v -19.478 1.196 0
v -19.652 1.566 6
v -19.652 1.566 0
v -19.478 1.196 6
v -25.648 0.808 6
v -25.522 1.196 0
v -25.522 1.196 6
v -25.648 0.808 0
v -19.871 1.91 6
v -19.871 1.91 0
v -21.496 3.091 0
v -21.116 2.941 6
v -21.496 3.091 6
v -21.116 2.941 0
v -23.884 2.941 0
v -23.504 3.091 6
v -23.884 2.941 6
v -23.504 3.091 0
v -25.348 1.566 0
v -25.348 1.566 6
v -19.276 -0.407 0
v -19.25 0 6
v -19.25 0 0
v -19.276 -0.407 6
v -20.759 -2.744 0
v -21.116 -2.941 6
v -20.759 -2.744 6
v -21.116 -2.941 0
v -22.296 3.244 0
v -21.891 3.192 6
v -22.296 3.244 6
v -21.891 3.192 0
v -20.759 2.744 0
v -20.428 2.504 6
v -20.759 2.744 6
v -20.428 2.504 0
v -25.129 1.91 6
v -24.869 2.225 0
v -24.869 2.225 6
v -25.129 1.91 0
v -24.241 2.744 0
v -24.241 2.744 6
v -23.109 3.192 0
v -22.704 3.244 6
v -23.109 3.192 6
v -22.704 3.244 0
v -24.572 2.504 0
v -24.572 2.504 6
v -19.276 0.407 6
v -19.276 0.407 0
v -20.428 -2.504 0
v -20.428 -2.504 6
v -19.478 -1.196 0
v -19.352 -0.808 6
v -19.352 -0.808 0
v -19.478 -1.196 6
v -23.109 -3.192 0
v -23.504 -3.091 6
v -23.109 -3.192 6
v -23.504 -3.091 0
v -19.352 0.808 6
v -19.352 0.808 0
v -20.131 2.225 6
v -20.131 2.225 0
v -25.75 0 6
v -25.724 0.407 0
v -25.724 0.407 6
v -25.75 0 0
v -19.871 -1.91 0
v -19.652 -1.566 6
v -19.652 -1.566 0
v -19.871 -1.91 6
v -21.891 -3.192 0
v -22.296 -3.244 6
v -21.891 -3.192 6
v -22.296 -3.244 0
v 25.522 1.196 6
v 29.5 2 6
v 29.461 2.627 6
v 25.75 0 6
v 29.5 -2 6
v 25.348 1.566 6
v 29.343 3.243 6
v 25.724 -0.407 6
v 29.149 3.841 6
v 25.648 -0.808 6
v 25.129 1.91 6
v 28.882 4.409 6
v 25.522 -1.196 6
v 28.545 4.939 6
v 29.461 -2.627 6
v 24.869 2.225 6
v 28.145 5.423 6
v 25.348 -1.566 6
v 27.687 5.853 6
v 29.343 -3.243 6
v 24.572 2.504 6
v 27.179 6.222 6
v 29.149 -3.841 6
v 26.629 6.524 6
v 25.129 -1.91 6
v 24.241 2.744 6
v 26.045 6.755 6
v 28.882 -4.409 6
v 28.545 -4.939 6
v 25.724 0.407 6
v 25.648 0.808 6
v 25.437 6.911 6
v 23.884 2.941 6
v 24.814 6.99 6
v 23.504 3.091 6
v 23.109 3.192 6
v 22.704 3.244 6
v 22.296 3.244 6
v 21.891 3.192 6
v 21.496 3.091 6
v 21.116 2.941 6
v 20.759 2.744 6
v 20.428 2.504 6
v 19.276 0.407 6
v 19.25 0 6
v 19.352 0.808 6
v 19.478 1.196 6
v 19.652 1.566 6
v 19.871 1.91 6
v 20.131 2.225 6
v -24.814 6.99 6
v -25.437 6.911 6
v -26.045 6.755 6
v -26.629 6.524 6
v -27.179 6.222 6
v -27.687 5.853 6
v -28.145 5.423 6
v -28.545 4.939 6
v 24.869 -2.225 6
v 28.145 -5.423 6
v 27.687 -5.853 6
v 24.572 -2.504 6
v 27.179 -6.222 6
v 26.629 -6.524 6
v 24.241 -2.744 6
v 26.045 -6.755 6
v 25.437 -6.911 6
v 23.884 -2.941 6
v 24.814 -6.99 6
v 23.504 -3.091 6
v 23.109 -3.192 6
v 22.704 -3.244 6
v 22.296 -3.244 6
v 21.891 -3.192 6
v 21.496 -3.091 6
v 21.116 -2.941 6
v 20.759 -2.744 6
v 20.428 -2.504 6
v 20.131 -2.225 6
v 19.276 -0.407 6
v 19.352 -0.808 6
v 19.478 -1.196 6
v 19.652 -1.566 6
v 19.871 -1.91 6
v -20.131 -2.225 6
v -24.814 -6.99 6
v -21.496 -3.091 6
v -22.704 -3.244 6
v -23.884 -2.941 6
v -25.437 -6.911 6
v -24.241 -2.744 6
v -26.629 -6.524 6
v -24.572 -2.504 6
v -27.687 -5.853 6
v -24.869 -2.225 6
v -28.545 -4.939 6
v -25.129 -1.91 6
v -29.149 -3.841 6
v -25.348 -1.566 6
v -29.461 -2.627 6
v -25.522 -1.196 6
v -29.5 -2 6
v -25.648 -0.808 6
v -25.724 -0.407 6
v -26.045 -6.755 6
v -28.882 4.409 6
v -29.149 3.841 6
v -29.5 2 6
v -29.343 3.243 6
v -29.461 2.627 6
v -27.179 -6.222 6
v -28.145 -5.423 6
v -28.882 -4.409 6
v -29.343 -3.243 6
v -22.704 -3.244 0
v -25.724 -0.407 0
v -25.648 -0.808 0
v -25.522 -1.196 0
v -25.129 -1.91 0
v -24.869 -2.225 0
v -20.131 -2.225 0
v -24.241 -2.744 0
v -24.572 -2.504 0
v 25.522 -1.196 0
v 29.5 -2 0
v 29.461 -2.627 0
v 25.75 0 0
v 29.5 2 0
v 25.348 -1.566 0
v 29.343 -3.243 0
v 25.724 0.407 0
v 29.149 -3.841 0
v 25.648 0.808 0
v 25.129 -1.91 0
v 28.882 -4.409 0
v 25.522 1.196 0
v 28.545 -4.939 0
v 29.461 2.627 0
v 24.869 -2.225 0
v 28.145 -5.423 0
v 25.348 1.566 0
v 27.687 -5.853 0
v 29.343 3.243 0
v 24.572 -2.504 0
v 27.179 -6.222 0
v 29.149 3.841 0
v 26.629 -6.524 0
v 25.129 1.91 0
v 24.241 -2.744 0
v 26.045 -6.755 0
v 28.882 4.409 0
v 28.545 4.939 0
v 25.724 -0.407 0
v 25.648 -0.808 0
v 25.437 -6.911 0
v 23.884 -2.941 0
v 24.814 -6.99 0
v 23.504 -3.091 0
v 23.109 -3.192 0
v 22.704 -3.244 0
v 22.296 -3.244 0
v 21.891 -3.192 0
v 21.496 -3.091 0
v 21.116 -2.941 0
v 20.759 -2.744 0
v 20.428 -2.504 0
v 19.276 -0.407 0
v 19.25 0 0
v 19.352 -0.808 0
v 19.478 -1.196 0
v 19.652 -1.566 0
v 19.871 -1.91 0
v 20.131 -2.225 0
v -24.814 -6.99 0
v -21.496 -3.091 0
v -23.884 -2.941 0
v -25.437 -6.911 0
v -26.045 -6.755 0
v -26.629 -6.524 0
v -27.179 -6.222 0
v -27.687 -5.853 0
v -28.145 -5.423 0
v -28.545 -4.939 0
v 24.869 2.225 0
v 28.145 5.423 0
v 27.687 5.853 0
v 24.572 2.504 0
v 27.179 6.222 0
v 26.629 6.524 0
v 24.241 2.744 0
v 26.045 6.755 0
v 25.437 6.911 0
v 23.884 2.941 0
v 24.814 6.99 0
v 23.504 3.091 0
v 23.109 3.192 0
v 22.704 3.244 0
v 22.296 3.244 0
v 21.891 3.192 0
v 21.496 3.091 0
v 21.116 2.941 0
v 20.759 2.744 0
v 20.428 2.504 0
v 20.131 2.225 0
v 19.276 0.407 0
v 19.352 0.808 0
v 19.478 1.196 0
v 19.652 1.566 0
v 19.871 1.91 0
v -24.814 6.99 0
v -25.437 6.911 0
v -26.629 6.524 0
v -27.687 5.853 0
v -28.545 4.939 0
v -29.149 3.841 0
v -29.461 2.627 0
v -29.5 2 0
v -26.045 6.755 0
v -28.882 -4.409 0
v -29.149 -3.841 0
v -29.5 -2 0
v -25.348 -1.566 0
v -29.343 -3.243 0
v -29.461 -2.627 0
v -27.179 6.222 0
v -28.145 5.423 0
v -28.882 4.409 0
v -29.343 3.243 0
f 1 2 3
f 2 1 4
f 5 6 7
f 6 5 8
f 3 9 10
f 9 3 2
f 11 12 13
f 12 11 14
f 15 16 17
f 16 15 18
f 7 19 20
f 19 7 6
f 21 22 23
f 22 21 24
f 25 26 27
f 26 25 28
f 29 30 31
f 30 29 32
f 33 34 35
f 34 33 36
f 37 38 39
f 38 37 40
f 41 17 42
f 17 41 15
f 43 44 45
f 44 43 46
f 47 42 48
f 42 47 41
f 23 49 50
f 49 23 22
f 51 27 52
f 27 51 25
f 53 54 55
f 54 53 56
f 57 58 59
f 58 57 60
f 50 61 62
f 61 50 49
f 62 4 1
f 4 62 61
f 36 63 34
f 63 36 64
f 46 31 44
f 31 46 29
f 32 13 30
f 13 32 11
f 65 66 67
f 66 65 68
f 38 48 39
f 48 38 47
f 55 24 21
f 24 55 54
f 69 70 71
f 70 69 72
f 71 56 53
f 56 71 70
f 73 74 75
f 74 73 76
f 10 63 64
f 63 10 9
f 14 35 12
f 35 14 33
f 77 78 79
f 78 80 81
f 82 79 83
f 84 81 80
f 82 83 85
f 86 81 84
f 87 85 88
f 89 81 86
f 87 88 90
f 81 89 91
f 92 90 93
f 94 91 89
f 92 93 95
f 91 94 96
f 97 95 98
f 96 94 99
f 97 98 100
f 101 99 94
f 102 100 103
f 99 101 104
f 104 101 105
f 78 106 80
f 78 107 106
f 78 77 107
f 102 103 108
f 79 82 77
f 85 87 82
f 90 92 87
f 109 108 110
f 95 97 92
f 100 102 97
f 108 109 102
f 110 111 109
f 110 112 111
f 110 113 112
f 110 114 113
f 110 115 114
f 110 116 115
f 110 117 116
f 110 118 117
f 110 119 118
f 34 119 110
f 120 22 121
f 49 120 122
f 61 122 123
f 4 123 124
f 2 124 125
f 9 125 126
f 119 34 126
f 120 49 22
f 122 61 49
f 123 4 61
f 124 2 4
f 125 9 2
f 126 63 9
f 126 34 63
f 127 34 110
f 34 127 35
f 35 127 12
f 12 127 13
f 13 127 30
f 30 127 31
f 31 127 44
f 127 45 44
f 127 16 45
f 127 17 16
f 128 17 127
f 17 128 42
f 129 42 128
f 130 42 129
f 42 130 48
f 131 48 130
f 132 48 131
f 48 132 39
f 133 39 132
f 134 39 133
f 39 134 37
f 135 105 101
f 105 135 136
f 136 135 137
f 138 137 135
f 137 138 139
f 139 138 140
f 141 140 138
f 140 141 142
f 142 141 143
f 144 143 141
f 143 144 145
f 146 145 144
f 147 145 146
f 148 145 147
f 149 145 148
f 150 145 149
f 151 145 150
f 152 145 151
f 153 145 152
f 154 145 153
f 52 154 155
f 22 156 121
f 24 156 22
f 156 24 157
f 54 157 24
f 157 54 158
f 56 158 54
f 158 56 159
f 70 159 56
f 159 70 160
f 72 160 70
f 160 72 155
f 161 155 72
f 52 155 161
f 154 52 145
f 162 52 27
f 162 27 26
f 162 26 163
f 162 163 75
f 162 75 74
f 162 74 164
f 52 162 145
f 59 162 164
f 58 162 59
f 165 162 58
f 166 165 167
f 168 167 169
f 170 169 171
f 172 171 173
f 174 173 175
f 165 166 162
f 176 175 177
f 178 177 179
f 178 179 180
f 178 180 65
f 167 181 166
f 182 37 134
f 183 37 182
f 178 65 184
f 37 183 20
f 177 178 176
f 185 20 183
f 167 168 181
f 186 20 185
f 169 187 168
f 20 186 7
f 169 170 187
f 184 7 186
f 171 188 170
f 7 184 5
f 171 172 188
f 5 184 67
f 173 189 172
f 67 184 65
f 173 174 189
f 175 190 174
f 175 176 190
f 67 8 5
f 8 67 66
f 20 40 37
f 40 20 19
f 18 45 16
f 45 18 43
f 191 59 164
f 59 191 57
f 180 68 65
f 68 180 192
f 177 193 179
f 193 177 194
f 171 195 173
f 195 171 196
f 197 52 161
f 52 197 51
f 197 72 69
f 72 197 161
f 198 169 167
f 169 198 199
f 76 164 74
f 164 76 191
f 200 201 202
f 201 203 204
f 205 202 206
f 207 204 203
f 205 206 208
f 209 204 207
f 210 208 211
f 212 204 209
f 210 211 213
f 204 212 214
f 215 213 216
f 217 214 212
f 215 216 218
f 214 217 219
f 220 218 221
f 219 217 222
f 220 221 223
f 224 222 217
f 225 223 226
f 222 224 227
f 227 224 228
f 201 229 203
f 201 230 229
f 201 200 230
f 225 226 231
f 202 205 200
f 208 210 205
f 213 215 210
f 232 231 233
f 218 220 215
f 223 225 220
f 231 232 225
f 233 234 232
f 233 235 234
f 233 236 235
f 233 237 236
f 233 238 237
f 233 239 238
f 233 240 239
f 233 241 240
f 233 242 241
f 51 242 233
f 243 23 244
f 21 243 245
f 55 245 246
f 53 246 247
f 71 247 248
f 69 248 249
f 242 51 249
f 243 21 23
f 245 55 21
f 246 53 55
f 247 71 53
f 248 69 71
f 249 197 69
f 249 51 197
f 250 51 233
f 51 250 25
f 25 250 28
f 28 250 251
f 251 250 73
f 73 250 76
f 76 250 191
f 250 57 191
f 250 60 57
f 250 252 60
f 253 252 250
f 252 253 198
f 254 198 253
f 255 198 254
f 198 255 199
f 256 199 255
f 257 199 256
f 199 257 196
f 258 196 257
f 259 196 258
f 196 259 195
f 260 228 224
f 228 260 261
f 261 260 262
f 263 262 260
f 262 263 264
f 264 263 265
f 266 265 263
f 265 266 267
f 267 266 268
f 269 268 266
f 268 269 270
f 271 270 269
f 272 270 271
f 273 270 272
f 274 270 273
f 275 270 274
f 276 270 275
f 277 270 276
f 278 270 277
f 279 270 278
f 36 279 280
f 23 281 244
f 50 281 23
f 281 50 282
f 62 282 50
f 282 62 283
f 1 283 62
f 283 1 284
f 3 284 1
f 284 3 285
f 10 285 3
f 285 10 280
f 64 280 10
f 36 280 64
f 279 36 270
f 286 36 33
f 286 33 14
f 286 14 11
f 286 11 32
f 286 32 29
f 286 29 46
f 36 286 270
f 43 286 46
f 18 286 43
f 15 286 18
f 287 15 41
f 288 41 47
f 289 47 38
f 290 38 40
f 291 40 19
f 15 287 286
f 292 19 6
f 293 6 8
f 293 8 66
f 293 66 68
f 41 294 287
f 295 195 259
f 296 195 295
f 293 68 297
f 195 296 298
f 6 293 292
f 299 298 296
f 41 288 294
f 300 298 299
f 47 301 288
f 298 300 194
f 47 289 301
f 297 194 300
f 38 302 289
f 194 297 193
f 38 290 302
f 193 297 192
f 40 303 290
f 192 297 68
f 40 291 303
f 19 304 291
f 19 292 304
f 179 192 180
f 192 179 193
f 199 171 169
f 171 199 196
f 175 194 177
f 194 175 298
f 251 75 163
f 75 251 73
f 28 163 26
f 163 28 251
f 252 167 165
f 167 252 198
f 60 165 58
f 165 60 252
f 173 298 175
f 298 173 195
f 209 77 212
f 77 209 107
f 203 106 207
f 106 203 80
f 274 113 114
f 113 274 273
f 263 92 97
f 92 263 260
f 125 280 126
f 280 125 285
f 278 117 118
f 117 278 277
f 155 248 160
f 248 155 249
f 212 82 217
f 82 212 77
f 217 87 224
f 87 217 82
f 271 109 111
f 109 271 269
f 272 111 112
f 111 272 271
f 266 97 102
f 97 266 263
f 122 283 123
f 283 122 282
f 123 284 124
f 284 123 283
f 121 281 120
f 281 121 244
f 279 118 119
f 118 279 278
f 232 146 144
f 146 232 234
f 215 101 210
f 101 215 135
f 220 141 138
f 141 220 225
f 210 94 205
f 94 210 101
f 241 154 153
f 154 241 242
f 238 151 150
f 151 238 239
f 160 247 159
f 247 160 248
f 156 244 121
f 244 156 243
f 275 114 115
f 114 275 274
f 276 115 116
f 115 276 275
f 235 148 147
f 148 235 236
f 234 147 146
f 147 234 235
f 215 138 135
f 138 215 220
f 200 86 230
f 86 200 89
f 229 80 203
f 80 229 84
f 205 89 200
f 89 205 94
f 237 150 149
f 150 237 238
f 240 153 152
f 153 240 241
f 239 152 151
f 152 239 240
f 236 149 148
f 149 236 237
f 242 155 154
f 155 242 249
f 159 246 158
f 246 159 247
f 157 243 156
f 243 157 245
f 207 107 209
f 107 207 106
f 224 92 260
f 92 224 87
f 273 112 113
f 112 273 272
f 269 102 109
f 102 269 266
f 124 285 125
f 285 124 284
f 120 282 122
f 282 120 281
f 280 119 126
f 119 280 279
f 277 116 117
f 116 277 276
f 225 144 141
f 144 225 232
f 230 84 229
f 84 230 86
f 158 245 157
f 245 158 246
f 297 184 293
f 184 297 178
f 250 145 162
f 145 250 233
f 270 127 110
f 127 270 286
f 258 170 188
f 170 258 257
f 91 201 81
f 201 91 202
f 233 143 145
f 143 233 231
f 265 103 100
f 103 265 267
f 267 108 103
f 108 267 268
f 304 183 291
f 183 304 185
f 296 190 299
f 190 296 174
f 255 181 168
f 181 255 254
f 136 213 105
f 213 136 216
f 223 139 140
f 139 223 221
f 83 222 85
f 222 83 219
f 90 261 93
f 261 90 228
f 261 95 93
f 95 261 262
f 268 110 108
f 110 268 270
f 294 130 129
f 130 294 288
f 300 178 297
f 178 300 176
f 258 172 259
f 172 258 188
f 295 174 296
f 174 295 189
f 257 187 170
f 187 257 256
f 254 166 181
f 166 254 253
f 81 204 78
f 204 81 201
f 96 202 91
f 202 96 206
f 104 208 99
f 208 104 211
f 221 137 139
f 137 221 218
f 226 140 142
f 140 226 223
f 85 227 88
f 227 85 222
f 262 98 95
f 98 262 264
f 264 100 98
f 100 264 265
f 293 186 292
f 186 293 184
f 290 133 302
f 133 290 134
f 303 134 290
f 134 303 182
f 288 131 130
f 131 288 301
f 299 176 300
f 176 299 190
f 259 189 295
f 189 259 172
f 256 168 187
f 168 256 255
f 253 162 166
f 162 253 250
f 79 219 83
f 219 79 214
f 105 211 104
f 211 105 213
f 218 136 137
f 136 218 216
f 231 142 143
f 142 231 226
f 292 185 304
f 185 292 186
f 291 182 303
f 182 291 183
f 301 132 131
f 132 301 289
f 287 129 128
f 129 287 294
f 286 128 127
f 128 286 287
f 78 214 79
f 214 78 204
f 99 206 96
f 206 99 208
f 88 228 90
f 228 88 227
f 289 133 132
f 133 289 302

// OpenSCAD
$fn = 50;


difference() {
	union() {
		hull() {
			translate(v = [-24.5000000000, 2.0000000000, 0]) {
				cylinder(h = 6, r = 5);
			}
			translate(v = [24.5000000000, 2.0000000000, 0]) {
				cylinder(h = 6, r = 5);
			}
			translate(v = [-24.5000000000, -2.0000000000, 0]) {
				cylinder(h = 6, r = 5);
			}
			translate(v = [24.5000000000, -2.0000000000, 0]) {
				cylinder(h = 6, r = 5);
			}
		}
	}
	union() {
		translate(v = [-22.5000000000, 0.0000000000, -100.0000000000]) {
			cylinder(h = 200, r = 3.2500000000);
		}
		translate(v = [-22.5000000000, 0.0000000000, -100.0000000000]) {
			cylinder(h = 200, r = 3.2500000000);
		}
		translate(v = [22.5000000000, 0.0000000000, -100.0000000000]) {
			cylinder(h = 200, r = 3.2500000000);
		}
		translate(v = [22.5000000000, 0.0000000000, -100.0000000000]) {
			cylinder(h = 200, r = 3.2500000000);
		}
	}
}
